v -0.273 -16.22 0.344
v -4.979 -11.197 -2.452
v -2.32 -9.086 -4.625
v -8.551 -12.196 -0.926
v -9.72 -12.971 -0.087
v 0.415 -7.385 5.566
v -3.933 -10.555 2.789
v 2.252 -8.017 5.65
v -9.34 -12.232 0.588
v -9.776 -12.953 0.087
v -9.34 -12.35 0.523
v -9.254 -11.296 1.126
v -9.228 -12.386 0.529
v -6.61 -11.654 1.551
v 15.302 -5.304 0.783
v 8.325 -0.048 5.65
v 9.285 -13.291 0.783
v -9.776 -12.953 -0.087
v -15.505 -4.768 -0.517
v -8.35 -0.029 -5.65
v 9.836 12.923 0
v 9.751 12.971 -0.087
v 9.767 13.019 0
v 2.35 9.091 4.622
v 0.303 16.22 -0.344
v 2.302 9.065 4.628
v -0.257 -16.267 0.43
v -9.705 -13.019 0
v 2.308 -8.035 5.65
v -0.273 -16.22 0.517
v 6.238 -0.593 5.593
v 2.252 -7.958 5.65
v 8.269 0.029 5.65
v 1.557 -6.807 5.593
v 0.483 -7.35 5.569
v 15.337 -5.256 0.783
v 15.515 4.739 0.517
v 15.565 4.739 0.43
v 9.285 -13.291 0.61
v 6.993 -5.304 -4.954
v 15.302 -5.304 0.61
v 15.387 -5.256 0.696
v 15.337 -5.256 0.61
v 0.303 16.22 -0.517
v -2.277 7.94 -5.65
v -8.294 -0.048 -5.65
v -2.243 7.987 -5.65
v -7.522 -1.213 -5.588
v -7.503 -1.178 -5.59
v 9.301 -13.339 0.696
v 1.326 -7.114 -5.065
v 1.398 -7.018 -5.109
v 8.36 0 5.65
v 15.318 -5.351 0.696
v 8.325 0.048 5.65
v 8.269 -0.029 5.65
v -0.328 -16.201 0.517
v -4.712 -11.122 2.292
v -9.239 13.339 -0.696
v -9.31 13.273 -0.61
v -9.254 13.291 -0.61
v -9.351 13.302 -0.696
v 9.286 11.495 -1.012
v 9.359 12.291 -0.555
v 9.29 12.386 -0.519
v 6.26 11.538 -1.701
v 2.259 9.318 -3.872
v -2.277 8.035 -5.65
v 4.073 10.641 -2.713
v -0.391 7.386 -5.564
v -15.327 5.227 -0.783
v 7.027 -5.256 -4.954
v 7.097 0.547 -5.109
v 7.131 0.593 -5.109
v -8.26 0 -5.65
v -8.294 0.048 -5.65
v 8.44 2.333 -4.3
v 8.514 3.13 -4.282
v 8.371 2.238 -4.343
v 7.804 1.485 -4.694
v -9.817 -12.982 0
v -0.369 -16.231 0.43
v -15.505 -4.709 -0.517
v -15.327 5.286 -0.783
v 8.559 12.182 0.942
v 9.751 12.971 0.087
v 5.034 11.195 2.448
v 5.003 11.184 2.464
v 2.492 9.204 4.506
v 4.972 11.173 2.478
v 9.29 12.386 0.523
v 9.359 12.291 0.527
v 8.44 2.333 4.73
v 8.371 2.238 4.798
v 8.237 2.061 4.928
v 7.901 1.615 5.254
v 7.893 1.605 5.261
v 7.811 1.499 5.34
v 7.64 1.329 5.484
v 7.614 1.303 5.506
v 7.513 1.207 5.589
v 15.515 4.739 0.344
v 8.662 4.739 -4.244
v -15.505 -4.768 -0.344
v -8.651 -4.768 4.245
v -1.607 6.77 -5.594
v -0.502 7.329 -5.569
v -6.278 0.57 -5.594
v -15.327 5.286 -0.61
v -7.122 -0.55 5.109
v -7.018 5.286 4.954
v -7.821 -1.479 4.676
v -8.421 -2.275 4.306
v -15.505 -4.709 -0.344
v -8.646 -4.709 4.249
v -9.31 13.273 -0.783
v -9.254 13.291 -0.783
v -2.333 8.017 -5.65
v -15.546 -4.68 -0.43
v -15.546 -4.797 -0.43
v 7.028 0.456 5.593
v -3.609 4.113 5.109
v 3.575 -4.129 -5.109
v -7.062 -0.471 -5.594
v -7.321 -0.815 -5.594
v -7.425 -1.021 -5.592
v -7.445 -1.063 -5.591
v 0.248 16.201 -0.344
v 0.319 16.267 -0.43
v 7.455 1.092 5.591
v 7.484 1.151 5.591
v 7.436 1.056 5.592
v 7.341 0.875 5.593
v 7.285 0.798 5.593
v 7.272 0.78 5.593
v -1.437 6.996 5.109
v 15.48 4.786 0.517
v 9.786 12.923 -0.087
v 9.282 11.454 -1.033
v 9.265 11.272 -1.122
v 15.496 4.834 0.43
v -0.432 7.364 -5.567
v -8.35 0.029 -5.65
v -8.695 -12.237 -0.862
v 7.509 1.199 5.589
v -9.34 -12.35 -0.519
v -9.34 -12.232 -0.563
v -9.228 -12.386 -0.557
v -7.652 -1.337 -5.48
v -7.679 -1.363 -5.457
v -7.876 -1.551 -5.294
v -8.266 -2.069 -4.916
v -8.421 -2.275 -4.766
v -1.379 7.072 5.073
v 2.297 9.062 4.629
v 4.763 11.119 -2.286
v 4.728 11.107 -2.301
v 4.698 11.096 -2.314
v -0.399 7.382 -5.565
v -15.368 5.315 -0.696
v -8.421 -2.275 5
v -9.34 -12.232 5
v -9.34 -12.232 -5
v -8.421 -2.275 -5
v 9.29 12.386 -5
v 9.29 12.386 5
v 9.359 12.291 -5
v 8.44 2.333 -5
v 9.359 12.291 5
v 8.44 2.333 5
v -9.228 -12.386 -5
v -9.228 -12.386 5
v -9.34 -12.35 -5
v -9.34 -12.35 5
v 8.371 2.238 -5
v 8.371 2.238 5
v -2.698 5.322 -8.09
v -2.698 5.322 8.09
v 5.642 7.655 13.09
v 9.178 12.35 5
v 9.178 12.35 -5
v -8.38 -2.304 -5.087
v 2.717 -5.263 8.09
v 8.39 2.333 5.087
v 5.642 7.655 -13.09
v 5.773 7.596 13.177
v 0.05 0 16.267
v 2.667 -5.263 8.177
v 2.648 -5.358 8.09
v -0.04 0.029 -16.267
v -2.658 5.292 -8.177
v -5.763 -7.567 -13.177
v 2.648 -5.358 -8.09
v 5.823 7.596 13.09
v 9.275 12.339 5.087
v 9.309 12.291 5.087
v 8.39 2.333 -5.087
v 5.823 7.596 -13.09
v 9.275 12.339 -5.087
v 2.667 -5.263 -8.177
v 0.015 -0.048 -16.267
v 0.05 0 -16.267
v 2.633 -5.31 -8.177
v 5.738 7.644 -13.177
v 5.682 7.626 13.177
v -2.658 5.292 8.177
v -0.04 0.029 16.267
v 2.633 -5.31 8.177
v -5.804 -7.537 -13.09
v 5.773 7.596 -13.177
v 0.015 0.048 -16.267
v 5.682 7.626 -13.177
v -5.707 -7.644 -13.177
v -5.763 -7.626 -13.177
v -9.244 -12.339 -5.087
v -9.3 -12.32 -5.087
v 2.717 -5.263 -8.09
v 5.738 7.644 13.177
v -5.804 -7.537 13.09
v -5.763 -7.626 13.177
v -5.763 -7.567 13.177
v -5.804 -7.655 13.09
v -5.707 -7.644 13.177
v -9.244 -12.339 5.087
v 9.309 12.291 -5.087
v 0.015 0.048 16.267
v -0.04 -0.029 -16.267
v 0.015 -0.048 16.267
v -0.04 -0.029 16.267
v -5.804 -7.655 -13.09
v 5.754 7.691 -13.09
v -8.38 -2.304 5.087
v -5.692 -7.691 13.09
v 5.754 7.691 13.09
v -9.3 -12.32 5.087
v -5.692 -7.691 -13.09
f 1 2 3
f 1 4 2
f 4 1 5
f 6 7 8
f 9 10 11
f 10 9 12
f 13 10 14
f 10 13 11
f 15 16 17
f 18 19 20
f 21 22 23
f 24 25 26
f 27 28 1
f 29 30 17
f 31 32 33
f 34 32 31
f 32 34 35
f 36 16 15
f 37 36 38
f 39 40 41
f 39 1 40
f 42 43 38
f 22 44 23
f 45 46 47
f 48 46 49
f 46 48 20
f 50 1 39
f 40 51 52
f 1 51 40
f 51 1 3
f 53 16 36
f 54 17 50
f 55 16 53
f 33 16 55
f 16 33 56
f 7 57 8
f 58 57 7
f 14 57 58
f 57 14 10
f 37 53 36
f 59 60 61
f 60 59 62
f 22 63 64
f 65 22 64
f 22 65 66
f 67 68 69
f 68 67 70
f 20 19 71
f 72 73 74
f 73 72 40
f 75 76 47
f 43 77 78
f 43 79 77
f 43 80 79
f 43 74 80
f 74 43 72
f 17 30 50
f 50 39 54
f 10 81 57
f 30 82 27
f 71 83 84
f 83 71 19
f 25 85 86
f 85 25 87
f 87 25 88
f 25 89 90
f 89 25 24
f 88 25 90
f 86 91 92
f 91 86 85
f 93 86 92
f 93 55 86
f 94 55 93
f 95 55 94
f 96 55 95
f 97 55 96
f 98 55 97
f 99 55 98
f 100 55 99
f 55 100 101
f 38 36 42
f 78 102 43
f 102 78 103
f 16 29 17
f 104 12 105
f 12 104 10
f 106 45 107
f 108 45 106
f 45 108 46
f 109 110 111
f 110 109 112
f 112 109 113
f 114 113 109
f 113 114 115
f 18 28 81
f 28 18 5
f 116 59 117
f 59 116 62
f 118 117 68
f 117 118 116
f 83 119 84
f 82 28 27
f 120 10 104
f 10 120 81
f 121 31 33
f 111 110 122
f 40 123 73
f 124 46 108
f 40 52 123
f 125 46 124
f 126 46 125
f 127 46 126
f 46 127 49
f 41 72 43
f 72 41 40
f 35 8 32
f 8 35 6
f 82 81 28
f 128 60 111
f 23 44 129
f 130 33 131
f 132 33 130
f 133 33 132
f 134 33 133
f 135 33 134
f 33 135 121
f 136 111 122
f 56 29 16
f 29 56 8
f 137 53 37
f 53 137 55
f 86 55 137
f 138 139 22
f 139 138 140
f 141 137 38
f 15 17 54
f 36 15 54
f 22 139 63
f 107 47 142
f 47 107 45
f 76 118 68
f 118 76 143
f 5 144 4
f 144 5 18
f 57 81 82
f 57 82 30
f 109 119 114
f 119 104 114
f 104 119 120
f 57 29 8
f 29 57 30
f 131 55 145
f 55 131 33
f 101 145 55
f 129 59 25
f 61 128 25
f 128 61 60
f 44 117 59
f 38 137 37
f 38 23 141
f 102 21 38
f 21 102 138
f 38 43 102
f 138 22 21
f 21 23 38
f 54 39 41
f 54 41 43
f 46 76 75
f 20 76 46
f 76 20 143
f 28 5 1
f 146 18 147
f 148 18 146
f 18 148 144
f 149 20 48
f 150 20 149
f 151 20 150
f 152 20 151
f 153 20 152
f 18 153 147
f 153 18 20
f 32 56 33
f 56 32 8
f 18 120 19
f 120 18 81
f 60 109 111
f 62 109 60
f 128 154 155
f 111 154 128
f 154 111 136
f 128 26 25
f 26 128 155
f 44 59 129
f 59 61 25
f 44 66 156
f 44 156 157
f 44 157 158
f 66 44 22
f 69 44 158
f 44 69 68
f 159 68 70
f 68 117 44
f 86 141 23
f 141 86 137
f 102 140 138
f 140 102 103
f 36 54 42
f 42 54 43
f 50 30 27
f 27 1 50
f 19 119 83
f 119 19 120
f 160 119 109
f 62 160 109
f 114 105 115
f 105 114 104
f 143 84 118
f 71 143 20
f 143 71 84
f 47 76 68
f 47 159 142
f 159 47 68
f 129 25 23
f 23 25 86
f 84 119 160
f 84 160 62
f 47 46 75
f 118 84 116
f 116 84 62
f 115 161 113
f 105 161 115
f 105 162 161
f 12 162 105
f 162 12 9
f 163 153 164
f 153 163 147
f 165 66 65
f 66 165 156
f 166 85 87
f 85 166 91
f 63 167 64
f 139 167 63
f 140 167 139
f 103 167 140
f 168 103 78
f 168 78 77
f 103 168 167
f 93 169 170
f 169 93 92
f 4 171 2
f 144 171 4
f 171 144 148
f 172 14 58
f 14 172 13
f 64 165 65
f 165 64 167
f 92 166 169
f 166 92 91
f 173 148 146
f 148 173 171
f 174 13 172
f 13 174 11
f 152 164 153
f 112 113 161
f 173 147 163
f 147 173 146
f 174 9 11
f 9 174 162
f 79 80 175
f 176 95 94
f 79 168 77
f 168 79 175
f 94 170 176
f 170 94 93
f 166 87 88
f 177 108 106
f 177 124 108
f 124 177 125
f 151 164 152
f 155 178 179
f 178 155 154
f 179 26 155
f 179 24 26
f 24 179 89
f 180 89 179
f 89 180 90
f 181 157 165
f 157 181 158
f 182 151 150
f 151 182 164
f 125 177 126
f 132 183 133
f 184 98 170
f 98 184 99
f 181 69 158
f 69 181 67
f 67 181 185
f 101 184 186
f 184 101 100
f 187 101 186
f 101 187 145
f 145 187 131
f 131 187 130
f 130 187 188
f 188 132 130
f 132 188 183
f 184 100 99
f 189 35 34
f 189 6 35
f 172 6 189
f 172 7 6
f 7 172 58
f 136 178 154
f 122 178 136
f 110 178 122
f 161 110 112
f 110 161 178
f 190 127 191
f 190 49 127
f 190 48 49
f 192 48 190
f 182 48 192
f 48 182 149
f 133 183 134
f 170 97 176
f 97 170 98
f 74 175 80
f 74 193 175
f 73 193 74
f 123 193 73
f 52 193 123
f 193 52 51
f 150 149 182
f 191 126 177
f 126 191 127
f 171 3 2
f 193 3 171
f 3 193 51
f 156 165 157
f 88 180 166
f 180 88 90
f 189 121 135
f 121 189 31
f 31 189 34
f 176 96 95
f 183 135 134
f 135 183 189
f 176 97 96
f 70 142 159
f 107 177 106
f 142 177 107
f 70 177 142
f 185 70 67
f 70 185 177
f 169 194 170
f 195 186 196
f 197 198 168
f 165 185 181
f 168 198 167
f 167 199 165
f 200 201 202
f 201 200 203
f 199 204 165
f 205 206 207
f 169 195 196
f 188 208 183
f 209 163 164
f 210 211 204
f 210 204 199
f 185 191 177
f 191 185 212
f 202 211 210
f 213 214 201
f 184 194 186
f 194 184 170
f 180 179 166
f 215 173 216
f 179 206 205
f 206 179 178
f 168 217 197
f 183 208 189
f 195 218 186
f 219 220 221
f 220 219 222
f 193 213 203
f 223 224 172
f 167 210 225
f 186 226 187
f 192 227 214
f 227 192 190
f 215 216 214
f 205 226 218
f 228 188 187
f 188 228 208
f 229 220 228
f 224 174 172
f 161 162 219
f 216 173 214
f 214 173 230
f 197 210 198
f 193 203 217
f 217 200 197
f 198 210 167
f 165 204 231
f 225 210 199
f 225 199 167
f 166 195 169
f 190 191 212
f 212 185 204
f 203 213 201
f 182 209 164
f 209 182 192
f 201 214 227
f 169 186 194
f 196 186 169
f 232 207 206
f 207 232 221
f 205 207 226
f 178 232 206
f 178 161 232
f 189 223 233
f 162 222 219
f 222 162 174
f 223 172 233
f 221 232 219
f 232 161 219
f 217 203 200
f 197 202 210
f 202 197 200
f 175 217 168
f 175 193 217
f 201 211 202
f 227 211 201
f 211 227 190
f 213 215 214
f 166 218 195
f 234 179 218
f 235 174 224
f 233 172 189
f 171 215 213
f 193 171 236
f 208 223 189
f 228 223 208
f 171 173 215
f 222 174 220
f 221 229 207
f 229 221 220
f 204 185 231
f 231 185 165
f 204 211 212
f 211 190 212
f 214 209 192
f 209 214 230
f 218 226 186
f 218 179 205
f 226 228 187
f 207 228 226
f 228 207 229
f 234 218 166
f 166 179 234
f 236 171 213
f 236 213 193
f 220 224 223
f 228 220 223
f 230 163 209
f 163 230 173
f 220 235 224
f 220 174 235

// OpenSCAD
// Auto-generated OpenSCAD file

    inner_points = 10*[[0.5722599249733294, 0.7596229824439242, -1.3090169943749441], [-0.5722599249733294, -0.7596229824439242, 1.3090169943749441], [1.4164956880340376e-14, -3.2423688378582613e-15, -1.618033988749895], [-0.9259360090062975, -1.2290958042298372, 0.49999999999999434], [0.9259360090062975, 1.2290958042298372, -0.49999999999999434], [-1.4164956880340376e-14, 3.2423688378582613e-15, 1.618033988749895], [-0.5722599249733062, -0.7596229824439293, -1.309016994374951], [-0.9259360090062885, -1.2290958042298392, -0.5000000000000058], [0.9259360090062885, 1.2290958042298392, 0.5000000000000058], [0.5722599249733062, 0.7596229824439293, 1.309016994374951], [-0.8340004290313582, -0.2333308474580752, -0.5000000000000069], [0.8340004290313582, 0.2333308474580752, 0.5000000000000069], [-0.26174050405803767, 0.526292134985851, -0.8090169943749508], [-0.834000429031367, -0.23333084745807323, 0.4999999999999932], [0.834000429031367, 0.23333084745807323, -0.4999999999999932], [0.26174050405803767, -0.526292134985851, 0.8090169943749508], [0.2617405040580519, -0.5262921349858541, -0.8090169943749441], [-0.0919355799749304, -0.9957649567717641, 1.1379786002407855e-15], [0.0919355799749304, 0.9957649567717641, -1.1379786002407855e-15], [-0.2617405040580519, 0.5262921349858541, 0.8090169943749441]];

    outer_points = 10*[[-0.028802887989037716, -1.6172054580711597, 0.04302195693174079], [0.028802887989037716, 1.6172054580711597, -0.04302195693174079], [0.9269826837913786, -1.324345589833875, 0.06961214971823448], [0.9735867355317978, 1.2923478081171045, 1.1611401438127444e-06], [-0.9735867355317978, -1.2923478081171045, -1.1611401438127444e-06], [-0.9269826837913786, 1.324345589833875, -0.06961214971823448], [1.5286923773460845, -0.5256307191310772, 0.06961286734230898], [1.5464935410974658, 0.4738572207487425, 0.04302383569595902], [-1.5464935410974658, -0.4738572207487425, -0.04302383569595902], [-1.5286923773460845, 0.5256307191310772, -0.06961286734230898], [0.8309648425538894, 0.0, 0.556324932426536], [-0.8309648425538894, 0.0, -0.556324932426536], [0.2292551489991834, -0.7987148707027978, 0.5563242148024615], [0.25805803698822116, 0.8184905873683619, 0.5133022578707207], [-0.25805803698822116, -0.8184905873683619, -0.5133022578707207], [-0.2292551489991834, 0.7987148707027978, -0.5563242148024615], [0.6977275347921952, -0.5256307191310772, -0.486712065084227], [0.7155286985435765, 0.4738572207487425, -0.5133010967305769], [-0.7155286985435765, -0.4738572207487425, 0.5133010967305769], [-0.6977275347921952, 0.5256307191310772, 0.486712065084227]];

    // Convex hull for inner set (I)
    module inner_hull() {
        hull() {
            for (p = inner_points) {
                translate(p) sphere(r=0.1);
            }
        }
    }

    // Convex hull for outer set (O) minus inner hull (O \ I)
    module outer_minus_inner() {
        difference() {
            hull() {
                for (p = outer_points) {
                    translate(p) sphere(r=0.1);
                }
            }
            inner_hull(); // Subtract inner hull
        }
    }

    // Convex hull for outer set (O) minus all translated inner hulls
    module outer_minus_AllTranslationInner() {
        difference() {
            hull() {
                for (p = outer_points) {
                    translate(p) sphere(r=0.1);
                }
            }
            hull() {
                translate([0,0,50]) inner_hull();
                translate([0,0,-50]) inner_hull();
            }; // Subtract translated inner hulls
        }
    }

    // Difference between outer_minus_inner and outer_minus_AllTranslationInner
    module outer_minus_inner_diff() {
        difference() {
            // Outer minus inner
            difference() {
                hull() {
                    for (p = outer_points) {
                        translate(p) sphere(r=0.1);
                    }
                }
                inner_hull();
            }

            // Subtract Outer minus AllTranslationInner
            difference() {
                hull() {
                    for (p = outer_points) {
                        translate(p) sphere(r=0.1);
                    }
                }
                hull() {
                    translate([0,0,50]) inner_hull();
                    translate([0,0,-50]) inner_hull();
                };
            }
        }
    }

    // Rendering all with colors applied
    color([1, 0, 0, 0.5]) inner_hull(); // Transparent red
    color([0, 1, 0, 1]) outer_minus_AllTranslationInner(); // Opaque green
    color([1, 1, 0, 1]) outer_minus_inner_diff(); // Opaque yellow
    
